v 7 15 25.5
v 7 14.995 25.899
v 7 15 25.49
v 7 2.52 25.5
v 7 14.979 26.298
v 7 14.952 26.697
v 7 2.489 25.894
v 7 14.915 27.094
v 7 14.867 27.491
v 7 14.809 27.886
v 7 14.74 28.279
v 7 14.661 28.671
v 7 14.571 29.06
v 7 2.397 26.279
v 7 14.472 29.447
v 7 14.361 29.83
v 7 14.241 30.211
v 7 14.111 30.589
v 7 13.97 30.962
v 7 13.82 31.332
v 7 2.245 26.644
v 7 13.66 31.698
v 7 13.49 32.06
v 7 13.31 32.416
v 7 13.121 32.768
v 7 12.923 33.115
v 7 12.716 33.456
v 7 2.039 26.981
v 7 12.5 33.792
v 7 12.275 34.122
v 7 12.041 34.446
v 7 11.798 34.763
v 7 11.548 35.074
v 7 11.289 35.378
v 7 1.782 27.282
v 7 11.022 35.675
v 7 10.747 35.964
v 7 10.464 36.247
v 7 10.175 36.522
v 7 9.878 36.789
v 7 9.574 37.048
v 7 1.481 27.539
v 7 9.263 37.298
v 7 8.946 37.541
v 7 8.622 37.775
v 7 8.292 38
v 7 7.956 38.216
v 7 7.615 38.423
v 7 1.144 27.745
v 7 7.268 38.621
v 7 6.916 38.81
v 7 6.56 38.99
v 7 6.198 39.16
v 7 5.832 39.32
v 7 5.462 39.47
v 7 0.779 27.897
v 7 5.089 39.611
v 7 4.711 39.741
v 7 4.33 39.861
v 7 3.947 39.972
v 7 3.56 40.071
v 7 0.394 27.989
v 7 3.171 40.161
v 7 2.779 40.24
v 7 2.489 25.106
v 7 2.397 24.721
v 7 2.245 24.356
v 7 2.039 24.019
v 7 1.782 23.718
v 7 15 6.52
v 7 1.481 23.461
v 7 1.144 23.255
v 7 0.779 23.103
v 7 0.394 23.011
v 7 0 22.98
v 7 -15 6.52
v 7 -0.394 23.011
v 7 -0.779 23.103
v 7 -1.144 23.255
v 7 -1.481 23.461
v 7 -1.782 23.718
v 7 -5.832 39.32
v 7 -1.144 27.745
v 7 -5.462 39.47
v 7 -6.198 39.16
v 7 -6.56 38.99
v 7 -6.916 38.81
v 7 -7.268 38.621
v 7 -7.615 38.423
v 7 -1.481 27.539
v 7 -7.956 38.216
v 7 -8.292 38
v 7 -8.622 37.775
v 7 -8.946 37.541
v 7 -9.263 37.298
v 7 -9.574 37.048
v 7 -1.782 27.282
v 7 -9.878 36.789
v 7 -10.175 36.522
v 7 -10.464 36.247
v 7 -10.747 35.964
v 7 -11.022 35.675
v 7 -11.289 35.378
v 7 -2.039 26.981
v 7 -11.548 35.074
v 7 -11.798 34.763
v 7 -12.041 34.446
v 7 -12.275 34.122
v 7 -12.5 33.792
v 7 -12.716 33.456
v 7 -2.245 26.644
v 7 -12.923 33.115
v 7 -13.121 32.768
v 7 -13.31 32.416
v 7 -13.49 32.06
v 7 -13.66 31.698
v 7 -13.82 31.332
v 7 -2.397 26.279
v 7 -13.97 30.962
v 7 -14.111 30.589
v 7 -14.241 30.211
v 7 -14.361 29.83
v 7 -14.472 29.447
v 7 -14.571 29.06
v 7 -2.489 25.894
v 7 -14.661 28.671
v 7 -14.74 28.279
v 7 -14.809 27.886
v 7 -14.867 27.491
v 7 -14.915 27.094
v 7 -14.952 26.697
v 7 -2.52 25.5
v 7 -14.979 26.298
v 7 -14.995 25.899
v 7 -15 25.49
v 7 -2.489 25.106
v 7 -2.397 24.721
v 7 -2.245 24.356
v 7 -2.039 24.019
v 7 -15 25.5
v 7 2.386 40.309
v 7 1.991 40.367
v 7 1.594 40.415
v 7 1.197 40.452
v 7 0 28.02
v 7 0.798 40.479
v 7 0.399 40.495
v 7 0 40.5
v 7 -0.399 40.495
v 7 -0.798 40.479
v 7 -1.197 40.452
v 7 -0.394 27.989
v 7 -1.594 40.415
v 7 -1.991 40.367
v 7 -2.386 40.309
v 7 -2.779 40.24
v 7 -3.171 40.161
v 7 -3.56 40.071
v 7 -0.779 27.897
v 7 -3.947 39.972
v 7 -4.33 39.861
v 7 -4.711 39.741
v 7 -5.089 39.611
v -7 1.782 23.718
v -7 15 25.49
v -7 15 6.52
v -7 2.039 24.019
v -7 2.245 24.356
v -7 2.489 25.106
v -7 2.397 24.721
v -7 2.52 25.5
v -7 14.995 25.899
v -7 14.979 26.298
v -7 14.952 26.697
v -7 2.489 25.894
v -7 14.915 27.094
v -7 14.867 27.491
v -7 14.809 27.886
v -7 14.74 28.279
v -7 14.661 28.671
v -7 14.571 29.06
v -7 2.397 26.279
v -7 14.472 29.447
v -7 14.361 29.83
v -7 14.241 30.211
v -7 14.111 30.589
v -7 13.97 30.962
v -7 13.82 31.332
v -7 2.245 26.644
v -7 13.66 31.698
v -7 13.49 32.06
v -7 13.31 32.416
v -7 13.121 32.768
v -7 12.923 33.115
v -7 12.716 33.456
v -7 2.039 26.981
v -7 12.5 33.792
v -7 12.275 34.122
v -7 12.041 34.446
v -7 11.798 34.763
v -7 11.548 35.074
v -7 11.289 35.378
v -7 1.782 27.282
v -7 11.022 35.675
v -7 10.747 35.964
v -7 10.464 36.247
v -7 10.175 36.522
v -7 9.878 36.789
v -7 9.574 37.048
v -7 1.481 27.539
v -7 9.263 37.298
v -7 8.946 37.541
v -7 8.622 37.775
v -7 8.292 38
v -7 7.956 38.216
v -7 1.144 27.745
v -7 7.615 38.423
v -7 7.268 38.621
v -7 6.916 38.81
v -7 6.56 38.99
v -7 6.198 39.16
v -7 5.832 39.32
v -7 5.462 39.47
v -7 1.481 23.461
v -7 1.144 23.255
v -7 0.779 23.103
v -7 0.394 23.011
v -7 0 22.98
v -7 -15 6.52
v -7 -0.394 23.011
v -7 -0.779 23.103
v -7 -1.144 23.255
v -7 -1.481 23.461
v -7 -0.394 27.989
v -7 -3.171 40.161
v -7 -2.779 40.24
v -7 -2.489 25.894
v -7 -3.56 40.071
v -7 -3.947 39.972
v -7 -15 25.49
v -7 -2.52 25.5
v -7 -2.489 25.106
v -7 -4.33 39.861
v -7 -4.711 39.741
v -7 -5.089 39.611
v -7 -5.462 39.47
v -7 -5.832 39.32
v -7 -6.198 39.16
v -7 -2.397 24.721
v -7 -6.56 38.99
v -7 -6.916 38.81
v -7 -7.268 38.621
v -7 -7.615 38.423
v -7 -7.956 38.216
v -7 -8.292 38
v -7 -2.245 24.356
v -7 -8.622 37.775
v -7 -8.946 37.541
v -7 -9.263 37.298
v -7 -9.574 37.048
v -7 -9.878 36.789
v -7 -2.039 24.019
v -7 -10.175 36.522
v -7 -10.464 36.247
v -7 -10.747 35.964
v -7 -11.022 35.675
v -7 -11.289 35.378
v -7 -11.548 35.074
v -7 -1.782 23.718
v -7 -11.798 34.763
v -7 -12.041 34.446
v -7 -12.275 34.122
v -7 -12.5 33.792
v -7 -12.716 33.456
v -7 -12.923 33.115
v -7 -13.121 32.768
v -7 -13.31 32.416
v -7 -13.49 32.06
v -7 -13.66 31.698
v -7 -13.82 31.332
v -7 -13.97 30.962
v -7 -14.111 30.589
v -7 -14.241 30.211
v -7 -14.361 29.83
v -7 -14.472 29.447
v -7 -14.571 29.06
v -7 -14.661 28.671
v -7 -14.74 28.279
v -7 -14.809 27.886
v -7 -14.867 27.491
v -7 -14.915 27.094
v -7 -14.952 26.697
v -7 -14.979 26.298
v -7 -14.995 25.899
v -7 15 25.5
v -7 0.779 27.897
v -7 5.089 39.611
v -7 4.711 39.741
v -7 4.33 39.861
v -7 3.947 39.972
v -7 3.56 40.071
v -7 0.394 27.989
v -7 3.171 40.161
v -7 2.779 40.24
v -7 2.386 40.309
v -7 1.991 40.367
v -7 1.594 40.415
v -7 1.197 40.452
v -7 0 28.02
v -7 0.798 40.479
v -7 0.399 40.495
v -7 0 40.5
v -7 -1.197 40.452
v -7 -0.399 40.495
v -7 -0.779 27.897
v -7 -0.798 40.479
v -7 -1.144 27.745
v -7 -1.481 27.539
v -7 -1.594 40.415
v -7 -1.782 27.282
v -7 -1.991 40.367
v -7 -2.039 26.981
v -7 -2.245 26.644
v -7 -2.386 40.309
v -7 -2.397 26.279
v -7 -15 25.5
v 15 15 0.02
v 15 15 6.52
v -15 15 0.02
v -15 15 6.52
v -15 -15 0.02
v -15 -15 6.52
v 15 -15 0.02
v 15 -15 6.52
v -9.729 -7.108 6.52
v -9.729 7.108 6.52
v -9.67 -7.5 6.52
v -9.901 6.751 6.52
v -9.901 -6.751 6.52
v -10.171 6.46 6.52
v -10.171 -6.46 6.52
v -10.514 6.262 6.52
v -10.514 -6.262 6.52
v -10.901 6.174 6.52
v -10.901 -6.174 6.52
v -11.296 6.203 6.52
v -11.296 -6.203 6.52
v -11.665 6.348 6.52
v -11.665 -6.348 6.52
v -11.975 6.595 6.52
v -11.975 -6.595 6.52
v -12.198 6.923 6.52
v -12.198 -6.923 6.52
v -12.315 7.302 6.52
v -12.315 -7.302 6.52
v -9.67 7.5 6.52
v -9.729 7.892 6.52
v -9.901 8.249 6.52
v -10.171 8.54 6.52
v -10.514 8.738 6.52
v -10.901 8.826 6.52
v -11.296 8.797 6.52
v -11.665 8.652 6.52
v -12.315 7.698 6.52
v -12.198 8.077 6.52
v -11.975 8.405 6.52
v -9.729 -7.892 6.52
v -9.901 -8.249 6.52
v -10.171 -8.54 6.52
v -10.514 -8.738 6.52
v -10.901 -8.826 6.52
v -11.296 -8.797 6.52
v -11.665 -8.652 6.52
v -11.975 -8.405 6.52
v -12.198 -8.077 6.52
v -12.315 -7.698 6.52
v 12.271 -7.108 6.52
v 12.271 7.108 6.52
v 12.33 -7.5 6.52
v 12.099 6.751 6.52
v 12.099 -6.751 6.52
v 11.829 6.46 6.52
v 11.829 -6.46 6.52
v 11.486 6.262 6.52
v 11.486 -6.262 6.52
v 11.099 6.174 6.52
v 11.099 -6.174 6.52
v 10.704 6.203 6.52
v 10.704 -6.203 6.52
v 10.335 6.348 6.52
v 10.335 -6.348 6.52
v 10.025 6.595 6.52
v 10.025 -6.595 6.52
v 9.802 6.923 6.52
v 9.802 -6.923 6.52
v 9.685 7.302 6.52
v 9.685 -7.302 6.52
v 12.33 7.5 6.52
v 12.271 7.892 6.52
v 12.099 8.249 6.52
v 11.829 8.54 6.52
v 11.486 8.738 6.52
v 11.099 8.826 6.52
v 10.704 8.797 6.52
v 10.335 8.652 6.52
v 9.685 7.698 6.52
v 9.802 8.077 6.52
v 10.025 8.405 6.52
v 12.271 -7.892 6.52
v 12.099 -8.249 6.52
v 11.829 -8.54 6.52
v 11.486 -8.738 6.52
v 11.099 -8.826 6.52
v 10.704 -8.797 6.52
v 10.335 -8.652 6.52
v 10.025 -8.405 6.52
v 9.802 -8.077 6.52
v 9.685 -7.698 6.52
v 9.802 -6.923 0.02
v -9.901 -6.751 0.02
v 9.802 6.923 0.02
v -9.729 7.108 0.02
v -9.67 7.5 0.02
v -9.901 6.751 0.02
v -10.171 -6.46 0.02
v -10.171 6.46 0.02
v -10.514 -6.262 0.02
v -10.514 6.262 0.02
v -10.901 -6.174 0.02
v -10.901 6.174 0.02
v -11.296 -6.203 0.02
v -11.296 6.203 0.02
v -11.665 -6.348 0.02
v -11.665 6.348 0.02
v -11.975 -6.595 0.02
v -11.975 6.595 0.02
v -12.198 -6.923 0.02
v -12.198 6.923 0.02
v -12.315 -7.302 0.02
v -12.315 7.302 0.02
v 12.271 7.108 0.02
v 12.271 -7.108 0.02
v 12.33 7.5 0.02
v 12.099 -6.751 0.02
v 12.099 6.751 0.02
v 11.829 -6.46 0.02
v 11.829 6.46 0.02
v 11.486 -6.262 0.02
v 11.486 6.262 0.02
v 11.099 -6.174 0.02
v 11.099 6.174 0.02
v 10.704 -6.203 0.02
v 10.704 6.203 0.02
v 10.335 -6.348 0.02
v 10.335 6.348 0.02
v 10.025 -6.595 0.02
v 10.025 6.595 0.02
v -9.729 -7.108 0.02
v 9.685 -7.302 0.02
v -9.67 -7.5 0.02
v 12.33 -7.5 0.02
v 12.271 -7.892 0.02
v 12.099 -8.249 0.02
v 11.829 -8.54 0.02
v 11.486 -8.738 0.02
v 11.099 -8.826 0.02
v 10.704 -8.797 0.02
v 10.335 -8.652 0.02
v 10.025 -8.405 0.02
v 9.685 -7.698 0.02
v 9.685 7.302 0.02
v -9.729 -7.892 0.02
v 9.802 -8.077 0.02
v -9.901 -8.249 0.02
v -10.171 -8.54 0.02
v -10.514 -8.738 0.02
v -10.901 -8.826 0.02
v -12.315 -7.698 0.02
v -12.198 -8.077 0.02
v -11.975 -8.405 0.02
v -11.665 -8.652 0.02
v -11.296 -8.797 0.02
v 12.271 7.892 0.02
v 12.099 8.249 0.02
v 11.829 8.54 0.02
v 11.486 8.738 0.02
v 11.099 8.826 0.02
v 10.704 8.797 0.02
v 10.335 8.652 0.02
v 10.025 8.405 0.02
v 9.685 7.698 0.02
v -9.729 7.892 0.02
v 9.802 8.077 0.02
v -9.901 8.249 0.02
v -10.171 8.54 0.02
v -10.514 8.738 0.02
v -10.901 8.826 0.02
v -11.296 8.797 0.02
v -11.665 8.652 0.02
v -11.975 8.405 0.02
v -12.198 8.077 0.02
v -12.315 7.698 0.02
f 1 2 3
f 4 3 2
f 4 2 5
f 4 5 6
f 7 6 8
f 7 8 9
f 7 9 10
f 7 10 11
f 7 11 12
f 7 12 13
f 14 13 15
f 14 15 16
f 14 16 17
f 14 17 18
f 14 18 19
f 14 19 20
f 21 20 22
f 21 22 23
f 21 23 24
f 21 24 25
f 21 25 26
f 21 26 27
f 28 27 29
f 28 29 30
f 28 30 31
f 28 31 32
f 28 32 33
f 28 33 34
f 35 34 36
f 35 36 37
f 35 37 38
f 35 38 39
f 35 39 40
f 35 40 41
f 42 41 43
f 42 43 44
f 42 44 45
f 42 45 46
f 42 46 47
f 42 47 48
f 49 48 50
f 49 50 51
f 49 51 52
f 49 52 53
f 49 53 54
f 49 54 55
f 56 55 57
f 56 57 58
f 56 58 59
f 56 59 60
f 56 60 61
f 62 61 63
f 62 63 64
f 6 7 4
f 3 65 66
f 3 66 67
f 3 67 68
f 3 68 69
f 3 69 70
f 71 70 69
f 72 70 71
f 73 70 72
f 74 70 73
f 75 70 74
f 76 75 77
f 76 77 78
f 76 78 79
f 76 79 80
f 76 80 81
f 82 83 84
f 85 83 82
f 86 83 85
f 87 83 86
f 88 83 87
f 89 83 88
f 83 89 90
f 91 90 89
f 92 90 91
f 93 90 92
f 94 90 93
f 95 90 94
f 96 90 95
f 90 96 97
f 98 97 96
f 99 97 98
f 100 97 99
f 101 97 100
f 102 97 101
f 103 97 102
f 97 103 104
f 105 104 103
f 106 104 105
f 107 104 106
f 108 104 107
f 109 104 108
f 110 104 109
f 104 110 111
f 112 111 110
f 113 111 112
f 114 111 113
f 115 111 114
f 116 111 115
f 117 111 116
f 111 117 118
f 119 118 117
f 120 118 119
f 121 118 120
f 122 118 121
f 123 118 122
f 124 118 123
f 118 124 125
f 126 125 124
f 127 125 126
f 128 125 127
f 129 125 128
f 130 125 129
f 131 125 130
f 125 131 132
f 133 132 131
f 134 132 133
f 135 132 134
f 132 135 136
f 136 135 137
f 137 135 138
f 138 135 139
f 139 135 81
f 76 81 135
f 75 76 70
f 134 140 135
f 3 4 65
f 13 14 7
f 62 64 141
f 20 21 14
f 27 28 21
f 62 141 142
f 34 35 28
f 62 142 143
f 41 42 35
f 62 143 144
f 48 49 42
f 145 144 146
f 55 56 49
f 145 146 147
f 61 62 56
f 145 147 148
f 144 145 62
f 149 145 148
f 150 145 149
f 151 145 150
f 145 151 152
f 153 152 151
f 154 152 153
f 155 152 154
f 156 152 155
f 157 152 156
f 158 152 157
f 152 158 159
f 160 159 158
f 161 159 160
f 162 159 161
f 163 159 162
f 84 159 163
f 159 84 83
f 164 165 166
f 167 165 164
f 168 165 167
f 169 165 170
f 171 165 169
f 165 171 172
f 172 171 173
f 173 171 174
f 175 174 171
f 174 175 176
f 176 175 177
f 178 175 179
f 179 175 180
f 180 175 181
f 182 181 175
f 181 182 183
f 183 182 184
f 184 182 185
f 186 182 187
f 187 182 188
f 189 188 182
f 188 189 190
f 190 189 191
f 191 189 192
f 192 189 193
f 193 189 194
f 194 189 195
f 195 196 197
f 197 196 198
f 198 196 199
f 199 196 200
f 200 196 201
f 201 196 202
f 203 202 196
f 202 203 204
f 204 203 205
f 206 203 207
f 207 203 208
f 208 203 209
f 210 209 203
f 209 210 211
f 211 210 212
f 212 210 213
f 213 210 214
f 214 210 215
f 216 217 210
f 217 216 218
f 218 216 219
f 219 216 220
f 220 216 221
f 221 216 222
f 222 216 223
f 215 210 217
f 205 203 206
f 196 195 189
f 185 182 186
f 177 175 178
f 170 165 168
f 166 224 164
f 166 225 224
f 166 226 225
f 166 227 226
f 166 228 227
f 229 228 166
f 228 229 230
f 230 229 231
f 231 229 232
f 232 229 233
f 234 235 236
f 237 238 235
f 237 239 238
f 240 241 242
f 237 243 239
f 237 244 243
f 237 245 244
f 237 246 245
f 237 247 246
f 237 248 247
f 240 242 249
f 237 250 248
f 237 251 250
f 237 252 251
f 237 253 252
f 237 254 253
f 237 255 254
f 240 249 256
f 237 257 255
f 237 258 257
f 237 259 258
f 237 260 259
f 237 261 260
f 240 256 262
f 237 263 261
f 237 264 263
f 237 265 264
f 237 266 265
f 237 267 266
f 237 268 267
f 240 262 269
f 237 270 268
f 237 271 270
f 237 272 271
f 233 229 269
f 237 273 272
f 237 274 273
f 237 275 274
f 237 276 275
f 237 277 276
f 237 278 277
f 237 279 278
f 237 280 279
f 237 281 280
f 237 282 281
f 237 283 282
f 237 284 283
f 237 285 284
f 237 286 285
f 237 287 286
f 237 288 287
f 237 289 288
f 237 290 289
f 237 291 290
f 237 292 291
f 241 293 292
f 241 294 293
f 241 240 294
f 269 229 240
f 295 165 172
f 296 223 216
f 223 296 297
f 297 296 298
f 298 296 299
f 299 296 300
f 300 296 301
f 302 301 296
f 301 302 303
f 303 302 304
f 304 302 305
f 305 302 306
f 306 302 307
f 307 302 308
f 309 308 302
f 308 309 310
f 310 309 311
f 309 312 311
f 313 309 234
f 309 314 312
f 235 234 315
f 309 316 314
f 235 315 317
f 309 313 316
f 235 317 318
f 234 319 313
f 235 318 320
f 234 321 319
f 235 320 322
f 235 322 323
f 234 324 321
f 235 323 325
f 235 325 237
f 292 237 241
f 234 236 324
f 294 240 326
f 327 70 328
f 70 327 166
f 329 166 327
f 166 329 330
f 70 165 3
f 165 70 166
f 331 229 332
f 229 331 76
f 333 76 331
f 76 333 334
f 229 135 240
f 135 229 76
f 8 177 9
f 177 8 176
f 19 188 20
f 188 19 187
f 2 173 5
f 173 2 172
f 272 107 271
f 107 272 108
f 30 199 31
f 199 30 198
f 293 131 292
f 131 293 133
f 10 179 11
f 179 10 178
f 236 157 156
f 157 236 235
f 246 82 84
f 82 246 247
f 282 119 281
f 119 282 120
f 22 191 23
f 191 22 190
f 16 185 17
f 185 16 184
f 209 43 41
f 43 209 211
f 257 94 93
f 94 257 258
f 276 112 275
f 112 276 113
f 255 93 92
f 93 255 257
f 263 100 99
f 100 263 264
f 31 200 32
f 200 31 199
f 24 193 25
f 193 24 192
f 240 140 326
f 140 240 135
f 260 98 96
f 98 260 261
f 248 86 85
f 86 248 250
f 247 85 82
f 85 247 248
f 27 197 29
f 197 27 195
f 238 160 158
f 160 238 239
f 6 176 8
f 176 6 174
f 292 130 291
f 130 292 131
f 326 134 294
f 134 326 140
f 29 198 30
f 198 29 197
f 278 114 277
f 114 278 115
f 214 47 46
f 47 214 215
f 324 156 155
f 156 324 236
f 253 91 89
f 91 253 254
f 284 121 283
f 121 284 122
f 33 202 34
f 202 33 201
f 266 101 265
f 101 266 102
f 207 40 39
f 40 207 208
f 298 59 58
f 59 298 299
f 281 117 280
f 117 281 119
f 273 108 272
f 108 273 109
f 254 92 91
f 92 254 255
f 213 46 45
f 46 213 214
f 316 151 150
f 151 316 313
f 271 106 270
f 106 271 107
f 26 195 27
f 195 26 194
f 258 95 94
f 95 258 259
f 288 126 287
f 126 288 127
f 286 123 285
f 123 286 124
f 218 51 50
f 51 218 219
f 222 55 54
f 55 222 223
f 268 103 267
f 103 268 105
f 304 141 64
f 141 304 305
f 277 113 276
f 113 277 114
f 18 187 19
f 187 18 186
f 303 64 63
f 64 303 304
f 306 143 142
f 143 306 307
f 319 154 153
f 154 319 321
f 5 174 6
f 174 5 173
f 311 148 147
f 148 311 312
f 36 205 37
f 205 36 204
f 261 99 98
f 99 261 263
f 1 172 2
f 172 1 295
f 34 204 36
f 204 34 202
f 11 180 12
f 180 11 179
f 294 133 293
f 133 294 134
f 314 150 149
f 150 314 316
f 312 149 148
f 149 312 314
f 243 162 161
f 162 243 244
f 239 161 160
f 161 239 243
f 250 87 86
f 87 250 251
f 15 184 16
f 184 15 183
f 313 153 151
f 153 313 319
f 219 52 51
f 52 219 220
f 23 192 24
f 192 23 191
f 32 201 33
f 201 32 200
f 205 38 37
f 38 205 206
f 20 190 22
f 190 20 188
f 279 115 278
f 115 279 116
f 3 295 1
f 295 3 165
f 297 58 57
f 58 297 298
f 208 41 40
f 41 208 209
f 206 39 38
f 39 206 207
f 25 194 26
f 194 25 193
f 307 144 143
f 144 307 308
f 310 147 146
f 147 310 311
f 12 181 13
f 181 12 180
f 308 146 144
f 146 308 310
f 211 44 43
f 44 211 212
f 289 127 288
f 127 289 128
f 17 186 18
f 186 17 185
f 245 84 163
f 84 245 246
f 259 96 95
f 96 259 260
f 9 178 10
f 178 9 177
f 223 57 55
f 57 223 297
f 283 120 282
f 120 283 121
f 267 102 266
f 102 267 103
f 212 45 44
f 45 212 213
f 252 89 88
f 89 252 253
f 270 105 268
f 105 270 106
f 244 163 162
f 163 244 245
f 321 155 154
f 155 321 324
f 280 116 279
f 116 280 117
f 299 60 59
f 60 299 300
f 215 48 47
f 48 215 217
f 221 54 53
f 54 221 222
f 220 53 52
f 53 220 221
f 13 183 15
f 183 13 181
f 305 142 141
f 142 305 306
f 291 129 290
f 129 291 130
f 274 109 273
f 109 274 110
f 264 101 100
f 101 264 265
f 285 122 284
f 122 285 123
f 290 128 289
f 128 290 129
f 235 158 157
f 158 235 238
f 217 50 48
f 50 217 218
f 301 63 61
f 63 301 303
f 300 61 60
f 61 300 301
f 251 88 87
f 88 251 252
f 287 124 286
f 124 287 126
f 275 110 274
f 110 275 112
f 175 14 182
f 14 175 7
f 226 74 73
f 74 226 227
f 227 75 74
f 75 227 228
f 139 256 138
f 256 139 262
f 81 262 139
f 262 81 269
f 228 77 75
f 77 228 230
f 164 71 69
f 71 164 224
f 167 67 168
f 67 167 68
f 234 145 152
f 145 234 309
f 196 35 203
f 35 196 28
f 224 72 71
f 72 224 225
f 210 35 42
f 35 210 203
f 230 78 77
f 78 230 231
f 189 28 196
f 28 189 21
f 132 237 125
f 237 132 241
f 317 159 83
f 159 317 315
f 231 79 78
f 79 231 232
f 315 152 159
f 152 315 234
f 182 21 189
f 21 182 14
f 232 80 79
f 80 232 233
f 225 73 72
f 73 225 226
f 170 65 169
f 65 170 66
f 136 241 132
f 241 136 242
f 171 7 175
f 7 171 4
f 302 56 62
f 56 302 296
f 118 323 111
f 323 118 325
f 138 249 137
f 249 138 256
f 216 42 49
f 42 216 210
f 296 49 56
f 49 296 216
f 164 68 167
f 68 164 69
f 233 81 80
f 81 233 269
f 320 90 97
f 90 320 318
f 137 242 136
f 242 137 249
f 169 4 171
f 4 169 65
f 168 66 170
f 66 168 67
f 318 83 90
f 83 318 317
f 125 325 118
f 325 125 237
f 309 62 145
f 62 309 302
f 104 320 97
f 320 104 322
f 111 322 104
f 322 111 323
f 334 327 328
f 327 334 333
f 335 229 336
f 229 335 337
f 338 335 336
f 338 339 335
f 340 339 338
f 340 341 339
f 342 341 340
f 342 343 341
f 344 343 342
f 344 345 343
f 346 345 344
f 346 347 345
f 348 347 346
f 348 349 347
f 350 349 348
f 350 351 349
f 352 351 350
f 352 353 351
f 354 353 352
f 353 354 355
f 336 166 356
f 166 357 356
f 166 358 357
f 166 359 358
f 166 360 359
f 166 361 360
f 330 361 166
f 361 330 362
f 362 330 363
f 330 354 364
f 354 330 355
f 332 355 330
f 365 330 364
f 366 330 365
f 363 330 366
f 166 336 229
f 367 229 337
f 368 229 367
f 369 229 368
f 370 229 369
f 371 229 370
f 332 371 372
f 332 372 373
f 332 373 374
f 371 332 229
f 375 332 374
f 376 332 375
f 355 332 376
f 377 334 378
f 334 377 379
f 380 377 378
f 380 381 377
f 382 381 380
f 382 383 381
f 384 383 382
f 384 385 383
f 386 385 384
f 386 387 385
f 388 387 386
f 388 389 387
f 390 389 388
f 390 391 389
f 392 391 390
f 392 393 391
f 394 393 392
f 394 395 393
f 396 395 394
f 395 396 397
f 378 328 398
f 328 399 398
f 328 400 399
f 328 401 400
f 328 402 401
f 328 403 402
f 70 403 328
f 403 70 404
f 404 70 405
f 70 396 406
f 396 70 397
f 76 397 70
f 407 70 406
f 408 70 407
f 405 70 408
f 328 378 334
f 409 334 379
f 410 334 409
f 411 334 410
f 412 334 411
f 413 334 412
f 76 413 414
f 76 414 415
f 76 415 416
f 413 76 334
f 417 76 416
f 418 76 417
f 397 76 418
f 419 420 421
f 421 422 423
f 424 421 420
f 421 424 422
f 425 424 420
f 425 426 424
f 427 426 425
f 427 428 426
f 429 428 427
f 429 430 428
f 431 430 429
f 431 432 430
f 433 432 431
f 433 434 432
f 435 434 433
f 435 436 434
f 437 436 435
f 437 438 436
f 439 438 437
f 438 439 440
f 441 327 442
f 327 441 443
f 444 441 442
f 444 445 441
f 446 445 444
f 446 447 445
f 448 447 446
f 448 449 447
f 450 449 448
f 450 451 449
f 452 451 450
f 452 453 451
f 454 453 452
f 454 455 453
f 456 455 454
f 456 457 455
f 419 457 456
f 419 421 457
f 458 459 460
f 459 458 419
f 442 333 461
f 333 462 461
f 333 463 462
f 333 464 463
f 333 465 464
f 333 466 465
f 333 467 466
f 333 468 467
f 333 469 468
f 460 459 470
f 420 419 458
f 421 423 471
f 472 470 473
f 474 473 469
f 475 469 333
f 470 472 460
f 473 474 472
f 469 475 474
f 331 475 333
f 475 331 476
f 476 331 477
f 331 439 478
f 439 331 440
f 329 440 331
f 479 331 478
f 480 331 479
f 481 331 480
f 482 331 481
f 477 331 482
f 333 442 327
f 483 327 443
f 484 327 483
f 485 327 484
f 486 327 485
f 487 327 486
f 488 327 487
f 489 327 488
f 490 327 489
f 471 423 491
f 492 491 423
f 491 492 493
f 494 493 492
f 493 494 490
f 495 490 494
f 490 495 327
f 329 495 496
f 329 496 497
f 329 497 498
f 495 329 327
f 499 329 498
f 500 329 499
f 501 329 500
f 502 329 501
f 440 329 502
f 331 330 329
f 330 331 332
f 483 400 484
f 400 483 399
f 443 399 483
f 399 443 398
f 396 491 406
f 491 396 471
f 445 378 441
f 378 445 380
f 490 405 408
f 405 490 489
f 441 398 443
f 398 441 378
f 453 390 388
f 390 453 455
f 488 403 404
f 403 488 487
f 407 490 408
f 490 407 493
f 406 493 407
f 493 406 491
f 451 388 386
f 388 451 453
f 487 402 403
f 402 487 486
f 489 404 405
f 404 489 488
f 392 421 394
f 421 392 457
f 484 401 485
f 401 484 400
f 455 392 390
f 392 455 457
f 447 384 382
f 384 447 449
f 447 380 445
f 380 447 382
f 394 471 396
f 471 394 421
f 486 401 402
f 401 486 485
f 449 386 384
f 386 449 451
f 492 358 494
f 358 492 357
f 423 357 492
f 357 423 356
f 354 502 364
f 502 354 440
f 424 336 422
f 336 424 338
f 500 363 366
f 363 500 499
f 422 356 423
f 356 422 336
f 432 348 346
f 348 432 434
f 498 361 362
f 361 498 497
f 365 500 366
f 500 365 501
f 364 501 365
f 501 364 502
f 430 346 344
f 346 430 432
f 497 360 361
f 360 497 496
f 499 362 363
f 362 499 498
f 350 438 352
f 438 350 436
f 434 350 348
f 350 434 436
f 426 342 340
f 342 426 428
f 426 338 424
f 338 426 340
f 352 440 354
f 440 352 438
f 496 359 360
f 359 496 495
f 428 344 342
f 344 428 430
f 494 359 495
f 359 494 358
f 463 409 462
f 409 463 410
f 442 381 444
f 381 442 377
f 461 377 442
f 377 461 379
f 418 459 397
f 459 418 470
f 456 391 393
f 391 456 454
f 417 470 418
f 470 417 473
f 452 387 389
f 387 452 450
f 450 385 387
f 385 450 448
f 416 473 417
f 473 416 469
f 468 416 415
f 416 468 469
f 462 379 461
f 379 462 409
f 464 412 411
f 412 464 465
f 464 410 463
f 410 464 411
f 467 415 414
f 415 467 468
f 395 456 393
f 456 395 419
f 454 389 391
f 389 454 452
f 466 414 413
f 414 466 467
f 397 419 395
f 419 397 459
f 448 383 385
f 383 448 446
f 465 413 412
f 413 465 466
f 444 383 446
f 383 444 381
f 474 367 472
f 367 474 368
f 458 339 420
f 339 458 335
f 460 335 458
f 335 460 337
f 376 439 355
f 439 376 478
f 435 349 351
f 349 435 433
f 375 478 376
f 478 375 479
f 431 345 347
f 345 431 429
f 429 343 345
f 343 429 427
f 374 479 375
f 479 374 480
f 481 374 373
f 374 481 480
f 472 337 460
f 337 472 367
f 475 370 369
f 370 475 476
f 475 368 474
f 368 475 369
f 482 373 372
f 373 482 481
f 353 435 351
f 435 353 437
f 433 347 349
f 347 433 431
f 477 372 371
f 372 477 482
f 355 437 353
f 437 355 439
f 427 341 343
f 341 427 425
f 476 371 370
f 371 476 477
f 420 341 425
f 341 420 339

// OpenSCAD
$fa = 1;
$fs = 0.4;

translate([0,0,19/2+6.5-0.01])

difference(){
cube([14,30,19],center=true);

translate([0,0,19/2])
rotate([0,90,0])
cylinder(h=14+0.001,r=5.04/2,center=true);

}



translate([0,0,19+6.5])
rotate([0,90,0])
difference(){
cylinder(h=14,r=15,center=true);
cylinder(h=14+0.001,r=5.04/2,center=true);
}

translate([0,0,6.5/2+0.02])
difference(){
color([1,0,0])cube([30,30,6.5],center=true);

translate([11,7.5,0])
cylinder(h=15,r=2.66/2,center=true);
translate([-11,7.5,0])
cylinder(h=15,r=2.66/2,center=true);

translate([11,-7.5,0])
cylinder(h=15,r=2.66/2,center=true);
translate([-11,-7.5,0])
cylinder(h=15,r=2.66/2,center=true);

}



//Díametro de agujeros pequeños son para metrica fina 3
